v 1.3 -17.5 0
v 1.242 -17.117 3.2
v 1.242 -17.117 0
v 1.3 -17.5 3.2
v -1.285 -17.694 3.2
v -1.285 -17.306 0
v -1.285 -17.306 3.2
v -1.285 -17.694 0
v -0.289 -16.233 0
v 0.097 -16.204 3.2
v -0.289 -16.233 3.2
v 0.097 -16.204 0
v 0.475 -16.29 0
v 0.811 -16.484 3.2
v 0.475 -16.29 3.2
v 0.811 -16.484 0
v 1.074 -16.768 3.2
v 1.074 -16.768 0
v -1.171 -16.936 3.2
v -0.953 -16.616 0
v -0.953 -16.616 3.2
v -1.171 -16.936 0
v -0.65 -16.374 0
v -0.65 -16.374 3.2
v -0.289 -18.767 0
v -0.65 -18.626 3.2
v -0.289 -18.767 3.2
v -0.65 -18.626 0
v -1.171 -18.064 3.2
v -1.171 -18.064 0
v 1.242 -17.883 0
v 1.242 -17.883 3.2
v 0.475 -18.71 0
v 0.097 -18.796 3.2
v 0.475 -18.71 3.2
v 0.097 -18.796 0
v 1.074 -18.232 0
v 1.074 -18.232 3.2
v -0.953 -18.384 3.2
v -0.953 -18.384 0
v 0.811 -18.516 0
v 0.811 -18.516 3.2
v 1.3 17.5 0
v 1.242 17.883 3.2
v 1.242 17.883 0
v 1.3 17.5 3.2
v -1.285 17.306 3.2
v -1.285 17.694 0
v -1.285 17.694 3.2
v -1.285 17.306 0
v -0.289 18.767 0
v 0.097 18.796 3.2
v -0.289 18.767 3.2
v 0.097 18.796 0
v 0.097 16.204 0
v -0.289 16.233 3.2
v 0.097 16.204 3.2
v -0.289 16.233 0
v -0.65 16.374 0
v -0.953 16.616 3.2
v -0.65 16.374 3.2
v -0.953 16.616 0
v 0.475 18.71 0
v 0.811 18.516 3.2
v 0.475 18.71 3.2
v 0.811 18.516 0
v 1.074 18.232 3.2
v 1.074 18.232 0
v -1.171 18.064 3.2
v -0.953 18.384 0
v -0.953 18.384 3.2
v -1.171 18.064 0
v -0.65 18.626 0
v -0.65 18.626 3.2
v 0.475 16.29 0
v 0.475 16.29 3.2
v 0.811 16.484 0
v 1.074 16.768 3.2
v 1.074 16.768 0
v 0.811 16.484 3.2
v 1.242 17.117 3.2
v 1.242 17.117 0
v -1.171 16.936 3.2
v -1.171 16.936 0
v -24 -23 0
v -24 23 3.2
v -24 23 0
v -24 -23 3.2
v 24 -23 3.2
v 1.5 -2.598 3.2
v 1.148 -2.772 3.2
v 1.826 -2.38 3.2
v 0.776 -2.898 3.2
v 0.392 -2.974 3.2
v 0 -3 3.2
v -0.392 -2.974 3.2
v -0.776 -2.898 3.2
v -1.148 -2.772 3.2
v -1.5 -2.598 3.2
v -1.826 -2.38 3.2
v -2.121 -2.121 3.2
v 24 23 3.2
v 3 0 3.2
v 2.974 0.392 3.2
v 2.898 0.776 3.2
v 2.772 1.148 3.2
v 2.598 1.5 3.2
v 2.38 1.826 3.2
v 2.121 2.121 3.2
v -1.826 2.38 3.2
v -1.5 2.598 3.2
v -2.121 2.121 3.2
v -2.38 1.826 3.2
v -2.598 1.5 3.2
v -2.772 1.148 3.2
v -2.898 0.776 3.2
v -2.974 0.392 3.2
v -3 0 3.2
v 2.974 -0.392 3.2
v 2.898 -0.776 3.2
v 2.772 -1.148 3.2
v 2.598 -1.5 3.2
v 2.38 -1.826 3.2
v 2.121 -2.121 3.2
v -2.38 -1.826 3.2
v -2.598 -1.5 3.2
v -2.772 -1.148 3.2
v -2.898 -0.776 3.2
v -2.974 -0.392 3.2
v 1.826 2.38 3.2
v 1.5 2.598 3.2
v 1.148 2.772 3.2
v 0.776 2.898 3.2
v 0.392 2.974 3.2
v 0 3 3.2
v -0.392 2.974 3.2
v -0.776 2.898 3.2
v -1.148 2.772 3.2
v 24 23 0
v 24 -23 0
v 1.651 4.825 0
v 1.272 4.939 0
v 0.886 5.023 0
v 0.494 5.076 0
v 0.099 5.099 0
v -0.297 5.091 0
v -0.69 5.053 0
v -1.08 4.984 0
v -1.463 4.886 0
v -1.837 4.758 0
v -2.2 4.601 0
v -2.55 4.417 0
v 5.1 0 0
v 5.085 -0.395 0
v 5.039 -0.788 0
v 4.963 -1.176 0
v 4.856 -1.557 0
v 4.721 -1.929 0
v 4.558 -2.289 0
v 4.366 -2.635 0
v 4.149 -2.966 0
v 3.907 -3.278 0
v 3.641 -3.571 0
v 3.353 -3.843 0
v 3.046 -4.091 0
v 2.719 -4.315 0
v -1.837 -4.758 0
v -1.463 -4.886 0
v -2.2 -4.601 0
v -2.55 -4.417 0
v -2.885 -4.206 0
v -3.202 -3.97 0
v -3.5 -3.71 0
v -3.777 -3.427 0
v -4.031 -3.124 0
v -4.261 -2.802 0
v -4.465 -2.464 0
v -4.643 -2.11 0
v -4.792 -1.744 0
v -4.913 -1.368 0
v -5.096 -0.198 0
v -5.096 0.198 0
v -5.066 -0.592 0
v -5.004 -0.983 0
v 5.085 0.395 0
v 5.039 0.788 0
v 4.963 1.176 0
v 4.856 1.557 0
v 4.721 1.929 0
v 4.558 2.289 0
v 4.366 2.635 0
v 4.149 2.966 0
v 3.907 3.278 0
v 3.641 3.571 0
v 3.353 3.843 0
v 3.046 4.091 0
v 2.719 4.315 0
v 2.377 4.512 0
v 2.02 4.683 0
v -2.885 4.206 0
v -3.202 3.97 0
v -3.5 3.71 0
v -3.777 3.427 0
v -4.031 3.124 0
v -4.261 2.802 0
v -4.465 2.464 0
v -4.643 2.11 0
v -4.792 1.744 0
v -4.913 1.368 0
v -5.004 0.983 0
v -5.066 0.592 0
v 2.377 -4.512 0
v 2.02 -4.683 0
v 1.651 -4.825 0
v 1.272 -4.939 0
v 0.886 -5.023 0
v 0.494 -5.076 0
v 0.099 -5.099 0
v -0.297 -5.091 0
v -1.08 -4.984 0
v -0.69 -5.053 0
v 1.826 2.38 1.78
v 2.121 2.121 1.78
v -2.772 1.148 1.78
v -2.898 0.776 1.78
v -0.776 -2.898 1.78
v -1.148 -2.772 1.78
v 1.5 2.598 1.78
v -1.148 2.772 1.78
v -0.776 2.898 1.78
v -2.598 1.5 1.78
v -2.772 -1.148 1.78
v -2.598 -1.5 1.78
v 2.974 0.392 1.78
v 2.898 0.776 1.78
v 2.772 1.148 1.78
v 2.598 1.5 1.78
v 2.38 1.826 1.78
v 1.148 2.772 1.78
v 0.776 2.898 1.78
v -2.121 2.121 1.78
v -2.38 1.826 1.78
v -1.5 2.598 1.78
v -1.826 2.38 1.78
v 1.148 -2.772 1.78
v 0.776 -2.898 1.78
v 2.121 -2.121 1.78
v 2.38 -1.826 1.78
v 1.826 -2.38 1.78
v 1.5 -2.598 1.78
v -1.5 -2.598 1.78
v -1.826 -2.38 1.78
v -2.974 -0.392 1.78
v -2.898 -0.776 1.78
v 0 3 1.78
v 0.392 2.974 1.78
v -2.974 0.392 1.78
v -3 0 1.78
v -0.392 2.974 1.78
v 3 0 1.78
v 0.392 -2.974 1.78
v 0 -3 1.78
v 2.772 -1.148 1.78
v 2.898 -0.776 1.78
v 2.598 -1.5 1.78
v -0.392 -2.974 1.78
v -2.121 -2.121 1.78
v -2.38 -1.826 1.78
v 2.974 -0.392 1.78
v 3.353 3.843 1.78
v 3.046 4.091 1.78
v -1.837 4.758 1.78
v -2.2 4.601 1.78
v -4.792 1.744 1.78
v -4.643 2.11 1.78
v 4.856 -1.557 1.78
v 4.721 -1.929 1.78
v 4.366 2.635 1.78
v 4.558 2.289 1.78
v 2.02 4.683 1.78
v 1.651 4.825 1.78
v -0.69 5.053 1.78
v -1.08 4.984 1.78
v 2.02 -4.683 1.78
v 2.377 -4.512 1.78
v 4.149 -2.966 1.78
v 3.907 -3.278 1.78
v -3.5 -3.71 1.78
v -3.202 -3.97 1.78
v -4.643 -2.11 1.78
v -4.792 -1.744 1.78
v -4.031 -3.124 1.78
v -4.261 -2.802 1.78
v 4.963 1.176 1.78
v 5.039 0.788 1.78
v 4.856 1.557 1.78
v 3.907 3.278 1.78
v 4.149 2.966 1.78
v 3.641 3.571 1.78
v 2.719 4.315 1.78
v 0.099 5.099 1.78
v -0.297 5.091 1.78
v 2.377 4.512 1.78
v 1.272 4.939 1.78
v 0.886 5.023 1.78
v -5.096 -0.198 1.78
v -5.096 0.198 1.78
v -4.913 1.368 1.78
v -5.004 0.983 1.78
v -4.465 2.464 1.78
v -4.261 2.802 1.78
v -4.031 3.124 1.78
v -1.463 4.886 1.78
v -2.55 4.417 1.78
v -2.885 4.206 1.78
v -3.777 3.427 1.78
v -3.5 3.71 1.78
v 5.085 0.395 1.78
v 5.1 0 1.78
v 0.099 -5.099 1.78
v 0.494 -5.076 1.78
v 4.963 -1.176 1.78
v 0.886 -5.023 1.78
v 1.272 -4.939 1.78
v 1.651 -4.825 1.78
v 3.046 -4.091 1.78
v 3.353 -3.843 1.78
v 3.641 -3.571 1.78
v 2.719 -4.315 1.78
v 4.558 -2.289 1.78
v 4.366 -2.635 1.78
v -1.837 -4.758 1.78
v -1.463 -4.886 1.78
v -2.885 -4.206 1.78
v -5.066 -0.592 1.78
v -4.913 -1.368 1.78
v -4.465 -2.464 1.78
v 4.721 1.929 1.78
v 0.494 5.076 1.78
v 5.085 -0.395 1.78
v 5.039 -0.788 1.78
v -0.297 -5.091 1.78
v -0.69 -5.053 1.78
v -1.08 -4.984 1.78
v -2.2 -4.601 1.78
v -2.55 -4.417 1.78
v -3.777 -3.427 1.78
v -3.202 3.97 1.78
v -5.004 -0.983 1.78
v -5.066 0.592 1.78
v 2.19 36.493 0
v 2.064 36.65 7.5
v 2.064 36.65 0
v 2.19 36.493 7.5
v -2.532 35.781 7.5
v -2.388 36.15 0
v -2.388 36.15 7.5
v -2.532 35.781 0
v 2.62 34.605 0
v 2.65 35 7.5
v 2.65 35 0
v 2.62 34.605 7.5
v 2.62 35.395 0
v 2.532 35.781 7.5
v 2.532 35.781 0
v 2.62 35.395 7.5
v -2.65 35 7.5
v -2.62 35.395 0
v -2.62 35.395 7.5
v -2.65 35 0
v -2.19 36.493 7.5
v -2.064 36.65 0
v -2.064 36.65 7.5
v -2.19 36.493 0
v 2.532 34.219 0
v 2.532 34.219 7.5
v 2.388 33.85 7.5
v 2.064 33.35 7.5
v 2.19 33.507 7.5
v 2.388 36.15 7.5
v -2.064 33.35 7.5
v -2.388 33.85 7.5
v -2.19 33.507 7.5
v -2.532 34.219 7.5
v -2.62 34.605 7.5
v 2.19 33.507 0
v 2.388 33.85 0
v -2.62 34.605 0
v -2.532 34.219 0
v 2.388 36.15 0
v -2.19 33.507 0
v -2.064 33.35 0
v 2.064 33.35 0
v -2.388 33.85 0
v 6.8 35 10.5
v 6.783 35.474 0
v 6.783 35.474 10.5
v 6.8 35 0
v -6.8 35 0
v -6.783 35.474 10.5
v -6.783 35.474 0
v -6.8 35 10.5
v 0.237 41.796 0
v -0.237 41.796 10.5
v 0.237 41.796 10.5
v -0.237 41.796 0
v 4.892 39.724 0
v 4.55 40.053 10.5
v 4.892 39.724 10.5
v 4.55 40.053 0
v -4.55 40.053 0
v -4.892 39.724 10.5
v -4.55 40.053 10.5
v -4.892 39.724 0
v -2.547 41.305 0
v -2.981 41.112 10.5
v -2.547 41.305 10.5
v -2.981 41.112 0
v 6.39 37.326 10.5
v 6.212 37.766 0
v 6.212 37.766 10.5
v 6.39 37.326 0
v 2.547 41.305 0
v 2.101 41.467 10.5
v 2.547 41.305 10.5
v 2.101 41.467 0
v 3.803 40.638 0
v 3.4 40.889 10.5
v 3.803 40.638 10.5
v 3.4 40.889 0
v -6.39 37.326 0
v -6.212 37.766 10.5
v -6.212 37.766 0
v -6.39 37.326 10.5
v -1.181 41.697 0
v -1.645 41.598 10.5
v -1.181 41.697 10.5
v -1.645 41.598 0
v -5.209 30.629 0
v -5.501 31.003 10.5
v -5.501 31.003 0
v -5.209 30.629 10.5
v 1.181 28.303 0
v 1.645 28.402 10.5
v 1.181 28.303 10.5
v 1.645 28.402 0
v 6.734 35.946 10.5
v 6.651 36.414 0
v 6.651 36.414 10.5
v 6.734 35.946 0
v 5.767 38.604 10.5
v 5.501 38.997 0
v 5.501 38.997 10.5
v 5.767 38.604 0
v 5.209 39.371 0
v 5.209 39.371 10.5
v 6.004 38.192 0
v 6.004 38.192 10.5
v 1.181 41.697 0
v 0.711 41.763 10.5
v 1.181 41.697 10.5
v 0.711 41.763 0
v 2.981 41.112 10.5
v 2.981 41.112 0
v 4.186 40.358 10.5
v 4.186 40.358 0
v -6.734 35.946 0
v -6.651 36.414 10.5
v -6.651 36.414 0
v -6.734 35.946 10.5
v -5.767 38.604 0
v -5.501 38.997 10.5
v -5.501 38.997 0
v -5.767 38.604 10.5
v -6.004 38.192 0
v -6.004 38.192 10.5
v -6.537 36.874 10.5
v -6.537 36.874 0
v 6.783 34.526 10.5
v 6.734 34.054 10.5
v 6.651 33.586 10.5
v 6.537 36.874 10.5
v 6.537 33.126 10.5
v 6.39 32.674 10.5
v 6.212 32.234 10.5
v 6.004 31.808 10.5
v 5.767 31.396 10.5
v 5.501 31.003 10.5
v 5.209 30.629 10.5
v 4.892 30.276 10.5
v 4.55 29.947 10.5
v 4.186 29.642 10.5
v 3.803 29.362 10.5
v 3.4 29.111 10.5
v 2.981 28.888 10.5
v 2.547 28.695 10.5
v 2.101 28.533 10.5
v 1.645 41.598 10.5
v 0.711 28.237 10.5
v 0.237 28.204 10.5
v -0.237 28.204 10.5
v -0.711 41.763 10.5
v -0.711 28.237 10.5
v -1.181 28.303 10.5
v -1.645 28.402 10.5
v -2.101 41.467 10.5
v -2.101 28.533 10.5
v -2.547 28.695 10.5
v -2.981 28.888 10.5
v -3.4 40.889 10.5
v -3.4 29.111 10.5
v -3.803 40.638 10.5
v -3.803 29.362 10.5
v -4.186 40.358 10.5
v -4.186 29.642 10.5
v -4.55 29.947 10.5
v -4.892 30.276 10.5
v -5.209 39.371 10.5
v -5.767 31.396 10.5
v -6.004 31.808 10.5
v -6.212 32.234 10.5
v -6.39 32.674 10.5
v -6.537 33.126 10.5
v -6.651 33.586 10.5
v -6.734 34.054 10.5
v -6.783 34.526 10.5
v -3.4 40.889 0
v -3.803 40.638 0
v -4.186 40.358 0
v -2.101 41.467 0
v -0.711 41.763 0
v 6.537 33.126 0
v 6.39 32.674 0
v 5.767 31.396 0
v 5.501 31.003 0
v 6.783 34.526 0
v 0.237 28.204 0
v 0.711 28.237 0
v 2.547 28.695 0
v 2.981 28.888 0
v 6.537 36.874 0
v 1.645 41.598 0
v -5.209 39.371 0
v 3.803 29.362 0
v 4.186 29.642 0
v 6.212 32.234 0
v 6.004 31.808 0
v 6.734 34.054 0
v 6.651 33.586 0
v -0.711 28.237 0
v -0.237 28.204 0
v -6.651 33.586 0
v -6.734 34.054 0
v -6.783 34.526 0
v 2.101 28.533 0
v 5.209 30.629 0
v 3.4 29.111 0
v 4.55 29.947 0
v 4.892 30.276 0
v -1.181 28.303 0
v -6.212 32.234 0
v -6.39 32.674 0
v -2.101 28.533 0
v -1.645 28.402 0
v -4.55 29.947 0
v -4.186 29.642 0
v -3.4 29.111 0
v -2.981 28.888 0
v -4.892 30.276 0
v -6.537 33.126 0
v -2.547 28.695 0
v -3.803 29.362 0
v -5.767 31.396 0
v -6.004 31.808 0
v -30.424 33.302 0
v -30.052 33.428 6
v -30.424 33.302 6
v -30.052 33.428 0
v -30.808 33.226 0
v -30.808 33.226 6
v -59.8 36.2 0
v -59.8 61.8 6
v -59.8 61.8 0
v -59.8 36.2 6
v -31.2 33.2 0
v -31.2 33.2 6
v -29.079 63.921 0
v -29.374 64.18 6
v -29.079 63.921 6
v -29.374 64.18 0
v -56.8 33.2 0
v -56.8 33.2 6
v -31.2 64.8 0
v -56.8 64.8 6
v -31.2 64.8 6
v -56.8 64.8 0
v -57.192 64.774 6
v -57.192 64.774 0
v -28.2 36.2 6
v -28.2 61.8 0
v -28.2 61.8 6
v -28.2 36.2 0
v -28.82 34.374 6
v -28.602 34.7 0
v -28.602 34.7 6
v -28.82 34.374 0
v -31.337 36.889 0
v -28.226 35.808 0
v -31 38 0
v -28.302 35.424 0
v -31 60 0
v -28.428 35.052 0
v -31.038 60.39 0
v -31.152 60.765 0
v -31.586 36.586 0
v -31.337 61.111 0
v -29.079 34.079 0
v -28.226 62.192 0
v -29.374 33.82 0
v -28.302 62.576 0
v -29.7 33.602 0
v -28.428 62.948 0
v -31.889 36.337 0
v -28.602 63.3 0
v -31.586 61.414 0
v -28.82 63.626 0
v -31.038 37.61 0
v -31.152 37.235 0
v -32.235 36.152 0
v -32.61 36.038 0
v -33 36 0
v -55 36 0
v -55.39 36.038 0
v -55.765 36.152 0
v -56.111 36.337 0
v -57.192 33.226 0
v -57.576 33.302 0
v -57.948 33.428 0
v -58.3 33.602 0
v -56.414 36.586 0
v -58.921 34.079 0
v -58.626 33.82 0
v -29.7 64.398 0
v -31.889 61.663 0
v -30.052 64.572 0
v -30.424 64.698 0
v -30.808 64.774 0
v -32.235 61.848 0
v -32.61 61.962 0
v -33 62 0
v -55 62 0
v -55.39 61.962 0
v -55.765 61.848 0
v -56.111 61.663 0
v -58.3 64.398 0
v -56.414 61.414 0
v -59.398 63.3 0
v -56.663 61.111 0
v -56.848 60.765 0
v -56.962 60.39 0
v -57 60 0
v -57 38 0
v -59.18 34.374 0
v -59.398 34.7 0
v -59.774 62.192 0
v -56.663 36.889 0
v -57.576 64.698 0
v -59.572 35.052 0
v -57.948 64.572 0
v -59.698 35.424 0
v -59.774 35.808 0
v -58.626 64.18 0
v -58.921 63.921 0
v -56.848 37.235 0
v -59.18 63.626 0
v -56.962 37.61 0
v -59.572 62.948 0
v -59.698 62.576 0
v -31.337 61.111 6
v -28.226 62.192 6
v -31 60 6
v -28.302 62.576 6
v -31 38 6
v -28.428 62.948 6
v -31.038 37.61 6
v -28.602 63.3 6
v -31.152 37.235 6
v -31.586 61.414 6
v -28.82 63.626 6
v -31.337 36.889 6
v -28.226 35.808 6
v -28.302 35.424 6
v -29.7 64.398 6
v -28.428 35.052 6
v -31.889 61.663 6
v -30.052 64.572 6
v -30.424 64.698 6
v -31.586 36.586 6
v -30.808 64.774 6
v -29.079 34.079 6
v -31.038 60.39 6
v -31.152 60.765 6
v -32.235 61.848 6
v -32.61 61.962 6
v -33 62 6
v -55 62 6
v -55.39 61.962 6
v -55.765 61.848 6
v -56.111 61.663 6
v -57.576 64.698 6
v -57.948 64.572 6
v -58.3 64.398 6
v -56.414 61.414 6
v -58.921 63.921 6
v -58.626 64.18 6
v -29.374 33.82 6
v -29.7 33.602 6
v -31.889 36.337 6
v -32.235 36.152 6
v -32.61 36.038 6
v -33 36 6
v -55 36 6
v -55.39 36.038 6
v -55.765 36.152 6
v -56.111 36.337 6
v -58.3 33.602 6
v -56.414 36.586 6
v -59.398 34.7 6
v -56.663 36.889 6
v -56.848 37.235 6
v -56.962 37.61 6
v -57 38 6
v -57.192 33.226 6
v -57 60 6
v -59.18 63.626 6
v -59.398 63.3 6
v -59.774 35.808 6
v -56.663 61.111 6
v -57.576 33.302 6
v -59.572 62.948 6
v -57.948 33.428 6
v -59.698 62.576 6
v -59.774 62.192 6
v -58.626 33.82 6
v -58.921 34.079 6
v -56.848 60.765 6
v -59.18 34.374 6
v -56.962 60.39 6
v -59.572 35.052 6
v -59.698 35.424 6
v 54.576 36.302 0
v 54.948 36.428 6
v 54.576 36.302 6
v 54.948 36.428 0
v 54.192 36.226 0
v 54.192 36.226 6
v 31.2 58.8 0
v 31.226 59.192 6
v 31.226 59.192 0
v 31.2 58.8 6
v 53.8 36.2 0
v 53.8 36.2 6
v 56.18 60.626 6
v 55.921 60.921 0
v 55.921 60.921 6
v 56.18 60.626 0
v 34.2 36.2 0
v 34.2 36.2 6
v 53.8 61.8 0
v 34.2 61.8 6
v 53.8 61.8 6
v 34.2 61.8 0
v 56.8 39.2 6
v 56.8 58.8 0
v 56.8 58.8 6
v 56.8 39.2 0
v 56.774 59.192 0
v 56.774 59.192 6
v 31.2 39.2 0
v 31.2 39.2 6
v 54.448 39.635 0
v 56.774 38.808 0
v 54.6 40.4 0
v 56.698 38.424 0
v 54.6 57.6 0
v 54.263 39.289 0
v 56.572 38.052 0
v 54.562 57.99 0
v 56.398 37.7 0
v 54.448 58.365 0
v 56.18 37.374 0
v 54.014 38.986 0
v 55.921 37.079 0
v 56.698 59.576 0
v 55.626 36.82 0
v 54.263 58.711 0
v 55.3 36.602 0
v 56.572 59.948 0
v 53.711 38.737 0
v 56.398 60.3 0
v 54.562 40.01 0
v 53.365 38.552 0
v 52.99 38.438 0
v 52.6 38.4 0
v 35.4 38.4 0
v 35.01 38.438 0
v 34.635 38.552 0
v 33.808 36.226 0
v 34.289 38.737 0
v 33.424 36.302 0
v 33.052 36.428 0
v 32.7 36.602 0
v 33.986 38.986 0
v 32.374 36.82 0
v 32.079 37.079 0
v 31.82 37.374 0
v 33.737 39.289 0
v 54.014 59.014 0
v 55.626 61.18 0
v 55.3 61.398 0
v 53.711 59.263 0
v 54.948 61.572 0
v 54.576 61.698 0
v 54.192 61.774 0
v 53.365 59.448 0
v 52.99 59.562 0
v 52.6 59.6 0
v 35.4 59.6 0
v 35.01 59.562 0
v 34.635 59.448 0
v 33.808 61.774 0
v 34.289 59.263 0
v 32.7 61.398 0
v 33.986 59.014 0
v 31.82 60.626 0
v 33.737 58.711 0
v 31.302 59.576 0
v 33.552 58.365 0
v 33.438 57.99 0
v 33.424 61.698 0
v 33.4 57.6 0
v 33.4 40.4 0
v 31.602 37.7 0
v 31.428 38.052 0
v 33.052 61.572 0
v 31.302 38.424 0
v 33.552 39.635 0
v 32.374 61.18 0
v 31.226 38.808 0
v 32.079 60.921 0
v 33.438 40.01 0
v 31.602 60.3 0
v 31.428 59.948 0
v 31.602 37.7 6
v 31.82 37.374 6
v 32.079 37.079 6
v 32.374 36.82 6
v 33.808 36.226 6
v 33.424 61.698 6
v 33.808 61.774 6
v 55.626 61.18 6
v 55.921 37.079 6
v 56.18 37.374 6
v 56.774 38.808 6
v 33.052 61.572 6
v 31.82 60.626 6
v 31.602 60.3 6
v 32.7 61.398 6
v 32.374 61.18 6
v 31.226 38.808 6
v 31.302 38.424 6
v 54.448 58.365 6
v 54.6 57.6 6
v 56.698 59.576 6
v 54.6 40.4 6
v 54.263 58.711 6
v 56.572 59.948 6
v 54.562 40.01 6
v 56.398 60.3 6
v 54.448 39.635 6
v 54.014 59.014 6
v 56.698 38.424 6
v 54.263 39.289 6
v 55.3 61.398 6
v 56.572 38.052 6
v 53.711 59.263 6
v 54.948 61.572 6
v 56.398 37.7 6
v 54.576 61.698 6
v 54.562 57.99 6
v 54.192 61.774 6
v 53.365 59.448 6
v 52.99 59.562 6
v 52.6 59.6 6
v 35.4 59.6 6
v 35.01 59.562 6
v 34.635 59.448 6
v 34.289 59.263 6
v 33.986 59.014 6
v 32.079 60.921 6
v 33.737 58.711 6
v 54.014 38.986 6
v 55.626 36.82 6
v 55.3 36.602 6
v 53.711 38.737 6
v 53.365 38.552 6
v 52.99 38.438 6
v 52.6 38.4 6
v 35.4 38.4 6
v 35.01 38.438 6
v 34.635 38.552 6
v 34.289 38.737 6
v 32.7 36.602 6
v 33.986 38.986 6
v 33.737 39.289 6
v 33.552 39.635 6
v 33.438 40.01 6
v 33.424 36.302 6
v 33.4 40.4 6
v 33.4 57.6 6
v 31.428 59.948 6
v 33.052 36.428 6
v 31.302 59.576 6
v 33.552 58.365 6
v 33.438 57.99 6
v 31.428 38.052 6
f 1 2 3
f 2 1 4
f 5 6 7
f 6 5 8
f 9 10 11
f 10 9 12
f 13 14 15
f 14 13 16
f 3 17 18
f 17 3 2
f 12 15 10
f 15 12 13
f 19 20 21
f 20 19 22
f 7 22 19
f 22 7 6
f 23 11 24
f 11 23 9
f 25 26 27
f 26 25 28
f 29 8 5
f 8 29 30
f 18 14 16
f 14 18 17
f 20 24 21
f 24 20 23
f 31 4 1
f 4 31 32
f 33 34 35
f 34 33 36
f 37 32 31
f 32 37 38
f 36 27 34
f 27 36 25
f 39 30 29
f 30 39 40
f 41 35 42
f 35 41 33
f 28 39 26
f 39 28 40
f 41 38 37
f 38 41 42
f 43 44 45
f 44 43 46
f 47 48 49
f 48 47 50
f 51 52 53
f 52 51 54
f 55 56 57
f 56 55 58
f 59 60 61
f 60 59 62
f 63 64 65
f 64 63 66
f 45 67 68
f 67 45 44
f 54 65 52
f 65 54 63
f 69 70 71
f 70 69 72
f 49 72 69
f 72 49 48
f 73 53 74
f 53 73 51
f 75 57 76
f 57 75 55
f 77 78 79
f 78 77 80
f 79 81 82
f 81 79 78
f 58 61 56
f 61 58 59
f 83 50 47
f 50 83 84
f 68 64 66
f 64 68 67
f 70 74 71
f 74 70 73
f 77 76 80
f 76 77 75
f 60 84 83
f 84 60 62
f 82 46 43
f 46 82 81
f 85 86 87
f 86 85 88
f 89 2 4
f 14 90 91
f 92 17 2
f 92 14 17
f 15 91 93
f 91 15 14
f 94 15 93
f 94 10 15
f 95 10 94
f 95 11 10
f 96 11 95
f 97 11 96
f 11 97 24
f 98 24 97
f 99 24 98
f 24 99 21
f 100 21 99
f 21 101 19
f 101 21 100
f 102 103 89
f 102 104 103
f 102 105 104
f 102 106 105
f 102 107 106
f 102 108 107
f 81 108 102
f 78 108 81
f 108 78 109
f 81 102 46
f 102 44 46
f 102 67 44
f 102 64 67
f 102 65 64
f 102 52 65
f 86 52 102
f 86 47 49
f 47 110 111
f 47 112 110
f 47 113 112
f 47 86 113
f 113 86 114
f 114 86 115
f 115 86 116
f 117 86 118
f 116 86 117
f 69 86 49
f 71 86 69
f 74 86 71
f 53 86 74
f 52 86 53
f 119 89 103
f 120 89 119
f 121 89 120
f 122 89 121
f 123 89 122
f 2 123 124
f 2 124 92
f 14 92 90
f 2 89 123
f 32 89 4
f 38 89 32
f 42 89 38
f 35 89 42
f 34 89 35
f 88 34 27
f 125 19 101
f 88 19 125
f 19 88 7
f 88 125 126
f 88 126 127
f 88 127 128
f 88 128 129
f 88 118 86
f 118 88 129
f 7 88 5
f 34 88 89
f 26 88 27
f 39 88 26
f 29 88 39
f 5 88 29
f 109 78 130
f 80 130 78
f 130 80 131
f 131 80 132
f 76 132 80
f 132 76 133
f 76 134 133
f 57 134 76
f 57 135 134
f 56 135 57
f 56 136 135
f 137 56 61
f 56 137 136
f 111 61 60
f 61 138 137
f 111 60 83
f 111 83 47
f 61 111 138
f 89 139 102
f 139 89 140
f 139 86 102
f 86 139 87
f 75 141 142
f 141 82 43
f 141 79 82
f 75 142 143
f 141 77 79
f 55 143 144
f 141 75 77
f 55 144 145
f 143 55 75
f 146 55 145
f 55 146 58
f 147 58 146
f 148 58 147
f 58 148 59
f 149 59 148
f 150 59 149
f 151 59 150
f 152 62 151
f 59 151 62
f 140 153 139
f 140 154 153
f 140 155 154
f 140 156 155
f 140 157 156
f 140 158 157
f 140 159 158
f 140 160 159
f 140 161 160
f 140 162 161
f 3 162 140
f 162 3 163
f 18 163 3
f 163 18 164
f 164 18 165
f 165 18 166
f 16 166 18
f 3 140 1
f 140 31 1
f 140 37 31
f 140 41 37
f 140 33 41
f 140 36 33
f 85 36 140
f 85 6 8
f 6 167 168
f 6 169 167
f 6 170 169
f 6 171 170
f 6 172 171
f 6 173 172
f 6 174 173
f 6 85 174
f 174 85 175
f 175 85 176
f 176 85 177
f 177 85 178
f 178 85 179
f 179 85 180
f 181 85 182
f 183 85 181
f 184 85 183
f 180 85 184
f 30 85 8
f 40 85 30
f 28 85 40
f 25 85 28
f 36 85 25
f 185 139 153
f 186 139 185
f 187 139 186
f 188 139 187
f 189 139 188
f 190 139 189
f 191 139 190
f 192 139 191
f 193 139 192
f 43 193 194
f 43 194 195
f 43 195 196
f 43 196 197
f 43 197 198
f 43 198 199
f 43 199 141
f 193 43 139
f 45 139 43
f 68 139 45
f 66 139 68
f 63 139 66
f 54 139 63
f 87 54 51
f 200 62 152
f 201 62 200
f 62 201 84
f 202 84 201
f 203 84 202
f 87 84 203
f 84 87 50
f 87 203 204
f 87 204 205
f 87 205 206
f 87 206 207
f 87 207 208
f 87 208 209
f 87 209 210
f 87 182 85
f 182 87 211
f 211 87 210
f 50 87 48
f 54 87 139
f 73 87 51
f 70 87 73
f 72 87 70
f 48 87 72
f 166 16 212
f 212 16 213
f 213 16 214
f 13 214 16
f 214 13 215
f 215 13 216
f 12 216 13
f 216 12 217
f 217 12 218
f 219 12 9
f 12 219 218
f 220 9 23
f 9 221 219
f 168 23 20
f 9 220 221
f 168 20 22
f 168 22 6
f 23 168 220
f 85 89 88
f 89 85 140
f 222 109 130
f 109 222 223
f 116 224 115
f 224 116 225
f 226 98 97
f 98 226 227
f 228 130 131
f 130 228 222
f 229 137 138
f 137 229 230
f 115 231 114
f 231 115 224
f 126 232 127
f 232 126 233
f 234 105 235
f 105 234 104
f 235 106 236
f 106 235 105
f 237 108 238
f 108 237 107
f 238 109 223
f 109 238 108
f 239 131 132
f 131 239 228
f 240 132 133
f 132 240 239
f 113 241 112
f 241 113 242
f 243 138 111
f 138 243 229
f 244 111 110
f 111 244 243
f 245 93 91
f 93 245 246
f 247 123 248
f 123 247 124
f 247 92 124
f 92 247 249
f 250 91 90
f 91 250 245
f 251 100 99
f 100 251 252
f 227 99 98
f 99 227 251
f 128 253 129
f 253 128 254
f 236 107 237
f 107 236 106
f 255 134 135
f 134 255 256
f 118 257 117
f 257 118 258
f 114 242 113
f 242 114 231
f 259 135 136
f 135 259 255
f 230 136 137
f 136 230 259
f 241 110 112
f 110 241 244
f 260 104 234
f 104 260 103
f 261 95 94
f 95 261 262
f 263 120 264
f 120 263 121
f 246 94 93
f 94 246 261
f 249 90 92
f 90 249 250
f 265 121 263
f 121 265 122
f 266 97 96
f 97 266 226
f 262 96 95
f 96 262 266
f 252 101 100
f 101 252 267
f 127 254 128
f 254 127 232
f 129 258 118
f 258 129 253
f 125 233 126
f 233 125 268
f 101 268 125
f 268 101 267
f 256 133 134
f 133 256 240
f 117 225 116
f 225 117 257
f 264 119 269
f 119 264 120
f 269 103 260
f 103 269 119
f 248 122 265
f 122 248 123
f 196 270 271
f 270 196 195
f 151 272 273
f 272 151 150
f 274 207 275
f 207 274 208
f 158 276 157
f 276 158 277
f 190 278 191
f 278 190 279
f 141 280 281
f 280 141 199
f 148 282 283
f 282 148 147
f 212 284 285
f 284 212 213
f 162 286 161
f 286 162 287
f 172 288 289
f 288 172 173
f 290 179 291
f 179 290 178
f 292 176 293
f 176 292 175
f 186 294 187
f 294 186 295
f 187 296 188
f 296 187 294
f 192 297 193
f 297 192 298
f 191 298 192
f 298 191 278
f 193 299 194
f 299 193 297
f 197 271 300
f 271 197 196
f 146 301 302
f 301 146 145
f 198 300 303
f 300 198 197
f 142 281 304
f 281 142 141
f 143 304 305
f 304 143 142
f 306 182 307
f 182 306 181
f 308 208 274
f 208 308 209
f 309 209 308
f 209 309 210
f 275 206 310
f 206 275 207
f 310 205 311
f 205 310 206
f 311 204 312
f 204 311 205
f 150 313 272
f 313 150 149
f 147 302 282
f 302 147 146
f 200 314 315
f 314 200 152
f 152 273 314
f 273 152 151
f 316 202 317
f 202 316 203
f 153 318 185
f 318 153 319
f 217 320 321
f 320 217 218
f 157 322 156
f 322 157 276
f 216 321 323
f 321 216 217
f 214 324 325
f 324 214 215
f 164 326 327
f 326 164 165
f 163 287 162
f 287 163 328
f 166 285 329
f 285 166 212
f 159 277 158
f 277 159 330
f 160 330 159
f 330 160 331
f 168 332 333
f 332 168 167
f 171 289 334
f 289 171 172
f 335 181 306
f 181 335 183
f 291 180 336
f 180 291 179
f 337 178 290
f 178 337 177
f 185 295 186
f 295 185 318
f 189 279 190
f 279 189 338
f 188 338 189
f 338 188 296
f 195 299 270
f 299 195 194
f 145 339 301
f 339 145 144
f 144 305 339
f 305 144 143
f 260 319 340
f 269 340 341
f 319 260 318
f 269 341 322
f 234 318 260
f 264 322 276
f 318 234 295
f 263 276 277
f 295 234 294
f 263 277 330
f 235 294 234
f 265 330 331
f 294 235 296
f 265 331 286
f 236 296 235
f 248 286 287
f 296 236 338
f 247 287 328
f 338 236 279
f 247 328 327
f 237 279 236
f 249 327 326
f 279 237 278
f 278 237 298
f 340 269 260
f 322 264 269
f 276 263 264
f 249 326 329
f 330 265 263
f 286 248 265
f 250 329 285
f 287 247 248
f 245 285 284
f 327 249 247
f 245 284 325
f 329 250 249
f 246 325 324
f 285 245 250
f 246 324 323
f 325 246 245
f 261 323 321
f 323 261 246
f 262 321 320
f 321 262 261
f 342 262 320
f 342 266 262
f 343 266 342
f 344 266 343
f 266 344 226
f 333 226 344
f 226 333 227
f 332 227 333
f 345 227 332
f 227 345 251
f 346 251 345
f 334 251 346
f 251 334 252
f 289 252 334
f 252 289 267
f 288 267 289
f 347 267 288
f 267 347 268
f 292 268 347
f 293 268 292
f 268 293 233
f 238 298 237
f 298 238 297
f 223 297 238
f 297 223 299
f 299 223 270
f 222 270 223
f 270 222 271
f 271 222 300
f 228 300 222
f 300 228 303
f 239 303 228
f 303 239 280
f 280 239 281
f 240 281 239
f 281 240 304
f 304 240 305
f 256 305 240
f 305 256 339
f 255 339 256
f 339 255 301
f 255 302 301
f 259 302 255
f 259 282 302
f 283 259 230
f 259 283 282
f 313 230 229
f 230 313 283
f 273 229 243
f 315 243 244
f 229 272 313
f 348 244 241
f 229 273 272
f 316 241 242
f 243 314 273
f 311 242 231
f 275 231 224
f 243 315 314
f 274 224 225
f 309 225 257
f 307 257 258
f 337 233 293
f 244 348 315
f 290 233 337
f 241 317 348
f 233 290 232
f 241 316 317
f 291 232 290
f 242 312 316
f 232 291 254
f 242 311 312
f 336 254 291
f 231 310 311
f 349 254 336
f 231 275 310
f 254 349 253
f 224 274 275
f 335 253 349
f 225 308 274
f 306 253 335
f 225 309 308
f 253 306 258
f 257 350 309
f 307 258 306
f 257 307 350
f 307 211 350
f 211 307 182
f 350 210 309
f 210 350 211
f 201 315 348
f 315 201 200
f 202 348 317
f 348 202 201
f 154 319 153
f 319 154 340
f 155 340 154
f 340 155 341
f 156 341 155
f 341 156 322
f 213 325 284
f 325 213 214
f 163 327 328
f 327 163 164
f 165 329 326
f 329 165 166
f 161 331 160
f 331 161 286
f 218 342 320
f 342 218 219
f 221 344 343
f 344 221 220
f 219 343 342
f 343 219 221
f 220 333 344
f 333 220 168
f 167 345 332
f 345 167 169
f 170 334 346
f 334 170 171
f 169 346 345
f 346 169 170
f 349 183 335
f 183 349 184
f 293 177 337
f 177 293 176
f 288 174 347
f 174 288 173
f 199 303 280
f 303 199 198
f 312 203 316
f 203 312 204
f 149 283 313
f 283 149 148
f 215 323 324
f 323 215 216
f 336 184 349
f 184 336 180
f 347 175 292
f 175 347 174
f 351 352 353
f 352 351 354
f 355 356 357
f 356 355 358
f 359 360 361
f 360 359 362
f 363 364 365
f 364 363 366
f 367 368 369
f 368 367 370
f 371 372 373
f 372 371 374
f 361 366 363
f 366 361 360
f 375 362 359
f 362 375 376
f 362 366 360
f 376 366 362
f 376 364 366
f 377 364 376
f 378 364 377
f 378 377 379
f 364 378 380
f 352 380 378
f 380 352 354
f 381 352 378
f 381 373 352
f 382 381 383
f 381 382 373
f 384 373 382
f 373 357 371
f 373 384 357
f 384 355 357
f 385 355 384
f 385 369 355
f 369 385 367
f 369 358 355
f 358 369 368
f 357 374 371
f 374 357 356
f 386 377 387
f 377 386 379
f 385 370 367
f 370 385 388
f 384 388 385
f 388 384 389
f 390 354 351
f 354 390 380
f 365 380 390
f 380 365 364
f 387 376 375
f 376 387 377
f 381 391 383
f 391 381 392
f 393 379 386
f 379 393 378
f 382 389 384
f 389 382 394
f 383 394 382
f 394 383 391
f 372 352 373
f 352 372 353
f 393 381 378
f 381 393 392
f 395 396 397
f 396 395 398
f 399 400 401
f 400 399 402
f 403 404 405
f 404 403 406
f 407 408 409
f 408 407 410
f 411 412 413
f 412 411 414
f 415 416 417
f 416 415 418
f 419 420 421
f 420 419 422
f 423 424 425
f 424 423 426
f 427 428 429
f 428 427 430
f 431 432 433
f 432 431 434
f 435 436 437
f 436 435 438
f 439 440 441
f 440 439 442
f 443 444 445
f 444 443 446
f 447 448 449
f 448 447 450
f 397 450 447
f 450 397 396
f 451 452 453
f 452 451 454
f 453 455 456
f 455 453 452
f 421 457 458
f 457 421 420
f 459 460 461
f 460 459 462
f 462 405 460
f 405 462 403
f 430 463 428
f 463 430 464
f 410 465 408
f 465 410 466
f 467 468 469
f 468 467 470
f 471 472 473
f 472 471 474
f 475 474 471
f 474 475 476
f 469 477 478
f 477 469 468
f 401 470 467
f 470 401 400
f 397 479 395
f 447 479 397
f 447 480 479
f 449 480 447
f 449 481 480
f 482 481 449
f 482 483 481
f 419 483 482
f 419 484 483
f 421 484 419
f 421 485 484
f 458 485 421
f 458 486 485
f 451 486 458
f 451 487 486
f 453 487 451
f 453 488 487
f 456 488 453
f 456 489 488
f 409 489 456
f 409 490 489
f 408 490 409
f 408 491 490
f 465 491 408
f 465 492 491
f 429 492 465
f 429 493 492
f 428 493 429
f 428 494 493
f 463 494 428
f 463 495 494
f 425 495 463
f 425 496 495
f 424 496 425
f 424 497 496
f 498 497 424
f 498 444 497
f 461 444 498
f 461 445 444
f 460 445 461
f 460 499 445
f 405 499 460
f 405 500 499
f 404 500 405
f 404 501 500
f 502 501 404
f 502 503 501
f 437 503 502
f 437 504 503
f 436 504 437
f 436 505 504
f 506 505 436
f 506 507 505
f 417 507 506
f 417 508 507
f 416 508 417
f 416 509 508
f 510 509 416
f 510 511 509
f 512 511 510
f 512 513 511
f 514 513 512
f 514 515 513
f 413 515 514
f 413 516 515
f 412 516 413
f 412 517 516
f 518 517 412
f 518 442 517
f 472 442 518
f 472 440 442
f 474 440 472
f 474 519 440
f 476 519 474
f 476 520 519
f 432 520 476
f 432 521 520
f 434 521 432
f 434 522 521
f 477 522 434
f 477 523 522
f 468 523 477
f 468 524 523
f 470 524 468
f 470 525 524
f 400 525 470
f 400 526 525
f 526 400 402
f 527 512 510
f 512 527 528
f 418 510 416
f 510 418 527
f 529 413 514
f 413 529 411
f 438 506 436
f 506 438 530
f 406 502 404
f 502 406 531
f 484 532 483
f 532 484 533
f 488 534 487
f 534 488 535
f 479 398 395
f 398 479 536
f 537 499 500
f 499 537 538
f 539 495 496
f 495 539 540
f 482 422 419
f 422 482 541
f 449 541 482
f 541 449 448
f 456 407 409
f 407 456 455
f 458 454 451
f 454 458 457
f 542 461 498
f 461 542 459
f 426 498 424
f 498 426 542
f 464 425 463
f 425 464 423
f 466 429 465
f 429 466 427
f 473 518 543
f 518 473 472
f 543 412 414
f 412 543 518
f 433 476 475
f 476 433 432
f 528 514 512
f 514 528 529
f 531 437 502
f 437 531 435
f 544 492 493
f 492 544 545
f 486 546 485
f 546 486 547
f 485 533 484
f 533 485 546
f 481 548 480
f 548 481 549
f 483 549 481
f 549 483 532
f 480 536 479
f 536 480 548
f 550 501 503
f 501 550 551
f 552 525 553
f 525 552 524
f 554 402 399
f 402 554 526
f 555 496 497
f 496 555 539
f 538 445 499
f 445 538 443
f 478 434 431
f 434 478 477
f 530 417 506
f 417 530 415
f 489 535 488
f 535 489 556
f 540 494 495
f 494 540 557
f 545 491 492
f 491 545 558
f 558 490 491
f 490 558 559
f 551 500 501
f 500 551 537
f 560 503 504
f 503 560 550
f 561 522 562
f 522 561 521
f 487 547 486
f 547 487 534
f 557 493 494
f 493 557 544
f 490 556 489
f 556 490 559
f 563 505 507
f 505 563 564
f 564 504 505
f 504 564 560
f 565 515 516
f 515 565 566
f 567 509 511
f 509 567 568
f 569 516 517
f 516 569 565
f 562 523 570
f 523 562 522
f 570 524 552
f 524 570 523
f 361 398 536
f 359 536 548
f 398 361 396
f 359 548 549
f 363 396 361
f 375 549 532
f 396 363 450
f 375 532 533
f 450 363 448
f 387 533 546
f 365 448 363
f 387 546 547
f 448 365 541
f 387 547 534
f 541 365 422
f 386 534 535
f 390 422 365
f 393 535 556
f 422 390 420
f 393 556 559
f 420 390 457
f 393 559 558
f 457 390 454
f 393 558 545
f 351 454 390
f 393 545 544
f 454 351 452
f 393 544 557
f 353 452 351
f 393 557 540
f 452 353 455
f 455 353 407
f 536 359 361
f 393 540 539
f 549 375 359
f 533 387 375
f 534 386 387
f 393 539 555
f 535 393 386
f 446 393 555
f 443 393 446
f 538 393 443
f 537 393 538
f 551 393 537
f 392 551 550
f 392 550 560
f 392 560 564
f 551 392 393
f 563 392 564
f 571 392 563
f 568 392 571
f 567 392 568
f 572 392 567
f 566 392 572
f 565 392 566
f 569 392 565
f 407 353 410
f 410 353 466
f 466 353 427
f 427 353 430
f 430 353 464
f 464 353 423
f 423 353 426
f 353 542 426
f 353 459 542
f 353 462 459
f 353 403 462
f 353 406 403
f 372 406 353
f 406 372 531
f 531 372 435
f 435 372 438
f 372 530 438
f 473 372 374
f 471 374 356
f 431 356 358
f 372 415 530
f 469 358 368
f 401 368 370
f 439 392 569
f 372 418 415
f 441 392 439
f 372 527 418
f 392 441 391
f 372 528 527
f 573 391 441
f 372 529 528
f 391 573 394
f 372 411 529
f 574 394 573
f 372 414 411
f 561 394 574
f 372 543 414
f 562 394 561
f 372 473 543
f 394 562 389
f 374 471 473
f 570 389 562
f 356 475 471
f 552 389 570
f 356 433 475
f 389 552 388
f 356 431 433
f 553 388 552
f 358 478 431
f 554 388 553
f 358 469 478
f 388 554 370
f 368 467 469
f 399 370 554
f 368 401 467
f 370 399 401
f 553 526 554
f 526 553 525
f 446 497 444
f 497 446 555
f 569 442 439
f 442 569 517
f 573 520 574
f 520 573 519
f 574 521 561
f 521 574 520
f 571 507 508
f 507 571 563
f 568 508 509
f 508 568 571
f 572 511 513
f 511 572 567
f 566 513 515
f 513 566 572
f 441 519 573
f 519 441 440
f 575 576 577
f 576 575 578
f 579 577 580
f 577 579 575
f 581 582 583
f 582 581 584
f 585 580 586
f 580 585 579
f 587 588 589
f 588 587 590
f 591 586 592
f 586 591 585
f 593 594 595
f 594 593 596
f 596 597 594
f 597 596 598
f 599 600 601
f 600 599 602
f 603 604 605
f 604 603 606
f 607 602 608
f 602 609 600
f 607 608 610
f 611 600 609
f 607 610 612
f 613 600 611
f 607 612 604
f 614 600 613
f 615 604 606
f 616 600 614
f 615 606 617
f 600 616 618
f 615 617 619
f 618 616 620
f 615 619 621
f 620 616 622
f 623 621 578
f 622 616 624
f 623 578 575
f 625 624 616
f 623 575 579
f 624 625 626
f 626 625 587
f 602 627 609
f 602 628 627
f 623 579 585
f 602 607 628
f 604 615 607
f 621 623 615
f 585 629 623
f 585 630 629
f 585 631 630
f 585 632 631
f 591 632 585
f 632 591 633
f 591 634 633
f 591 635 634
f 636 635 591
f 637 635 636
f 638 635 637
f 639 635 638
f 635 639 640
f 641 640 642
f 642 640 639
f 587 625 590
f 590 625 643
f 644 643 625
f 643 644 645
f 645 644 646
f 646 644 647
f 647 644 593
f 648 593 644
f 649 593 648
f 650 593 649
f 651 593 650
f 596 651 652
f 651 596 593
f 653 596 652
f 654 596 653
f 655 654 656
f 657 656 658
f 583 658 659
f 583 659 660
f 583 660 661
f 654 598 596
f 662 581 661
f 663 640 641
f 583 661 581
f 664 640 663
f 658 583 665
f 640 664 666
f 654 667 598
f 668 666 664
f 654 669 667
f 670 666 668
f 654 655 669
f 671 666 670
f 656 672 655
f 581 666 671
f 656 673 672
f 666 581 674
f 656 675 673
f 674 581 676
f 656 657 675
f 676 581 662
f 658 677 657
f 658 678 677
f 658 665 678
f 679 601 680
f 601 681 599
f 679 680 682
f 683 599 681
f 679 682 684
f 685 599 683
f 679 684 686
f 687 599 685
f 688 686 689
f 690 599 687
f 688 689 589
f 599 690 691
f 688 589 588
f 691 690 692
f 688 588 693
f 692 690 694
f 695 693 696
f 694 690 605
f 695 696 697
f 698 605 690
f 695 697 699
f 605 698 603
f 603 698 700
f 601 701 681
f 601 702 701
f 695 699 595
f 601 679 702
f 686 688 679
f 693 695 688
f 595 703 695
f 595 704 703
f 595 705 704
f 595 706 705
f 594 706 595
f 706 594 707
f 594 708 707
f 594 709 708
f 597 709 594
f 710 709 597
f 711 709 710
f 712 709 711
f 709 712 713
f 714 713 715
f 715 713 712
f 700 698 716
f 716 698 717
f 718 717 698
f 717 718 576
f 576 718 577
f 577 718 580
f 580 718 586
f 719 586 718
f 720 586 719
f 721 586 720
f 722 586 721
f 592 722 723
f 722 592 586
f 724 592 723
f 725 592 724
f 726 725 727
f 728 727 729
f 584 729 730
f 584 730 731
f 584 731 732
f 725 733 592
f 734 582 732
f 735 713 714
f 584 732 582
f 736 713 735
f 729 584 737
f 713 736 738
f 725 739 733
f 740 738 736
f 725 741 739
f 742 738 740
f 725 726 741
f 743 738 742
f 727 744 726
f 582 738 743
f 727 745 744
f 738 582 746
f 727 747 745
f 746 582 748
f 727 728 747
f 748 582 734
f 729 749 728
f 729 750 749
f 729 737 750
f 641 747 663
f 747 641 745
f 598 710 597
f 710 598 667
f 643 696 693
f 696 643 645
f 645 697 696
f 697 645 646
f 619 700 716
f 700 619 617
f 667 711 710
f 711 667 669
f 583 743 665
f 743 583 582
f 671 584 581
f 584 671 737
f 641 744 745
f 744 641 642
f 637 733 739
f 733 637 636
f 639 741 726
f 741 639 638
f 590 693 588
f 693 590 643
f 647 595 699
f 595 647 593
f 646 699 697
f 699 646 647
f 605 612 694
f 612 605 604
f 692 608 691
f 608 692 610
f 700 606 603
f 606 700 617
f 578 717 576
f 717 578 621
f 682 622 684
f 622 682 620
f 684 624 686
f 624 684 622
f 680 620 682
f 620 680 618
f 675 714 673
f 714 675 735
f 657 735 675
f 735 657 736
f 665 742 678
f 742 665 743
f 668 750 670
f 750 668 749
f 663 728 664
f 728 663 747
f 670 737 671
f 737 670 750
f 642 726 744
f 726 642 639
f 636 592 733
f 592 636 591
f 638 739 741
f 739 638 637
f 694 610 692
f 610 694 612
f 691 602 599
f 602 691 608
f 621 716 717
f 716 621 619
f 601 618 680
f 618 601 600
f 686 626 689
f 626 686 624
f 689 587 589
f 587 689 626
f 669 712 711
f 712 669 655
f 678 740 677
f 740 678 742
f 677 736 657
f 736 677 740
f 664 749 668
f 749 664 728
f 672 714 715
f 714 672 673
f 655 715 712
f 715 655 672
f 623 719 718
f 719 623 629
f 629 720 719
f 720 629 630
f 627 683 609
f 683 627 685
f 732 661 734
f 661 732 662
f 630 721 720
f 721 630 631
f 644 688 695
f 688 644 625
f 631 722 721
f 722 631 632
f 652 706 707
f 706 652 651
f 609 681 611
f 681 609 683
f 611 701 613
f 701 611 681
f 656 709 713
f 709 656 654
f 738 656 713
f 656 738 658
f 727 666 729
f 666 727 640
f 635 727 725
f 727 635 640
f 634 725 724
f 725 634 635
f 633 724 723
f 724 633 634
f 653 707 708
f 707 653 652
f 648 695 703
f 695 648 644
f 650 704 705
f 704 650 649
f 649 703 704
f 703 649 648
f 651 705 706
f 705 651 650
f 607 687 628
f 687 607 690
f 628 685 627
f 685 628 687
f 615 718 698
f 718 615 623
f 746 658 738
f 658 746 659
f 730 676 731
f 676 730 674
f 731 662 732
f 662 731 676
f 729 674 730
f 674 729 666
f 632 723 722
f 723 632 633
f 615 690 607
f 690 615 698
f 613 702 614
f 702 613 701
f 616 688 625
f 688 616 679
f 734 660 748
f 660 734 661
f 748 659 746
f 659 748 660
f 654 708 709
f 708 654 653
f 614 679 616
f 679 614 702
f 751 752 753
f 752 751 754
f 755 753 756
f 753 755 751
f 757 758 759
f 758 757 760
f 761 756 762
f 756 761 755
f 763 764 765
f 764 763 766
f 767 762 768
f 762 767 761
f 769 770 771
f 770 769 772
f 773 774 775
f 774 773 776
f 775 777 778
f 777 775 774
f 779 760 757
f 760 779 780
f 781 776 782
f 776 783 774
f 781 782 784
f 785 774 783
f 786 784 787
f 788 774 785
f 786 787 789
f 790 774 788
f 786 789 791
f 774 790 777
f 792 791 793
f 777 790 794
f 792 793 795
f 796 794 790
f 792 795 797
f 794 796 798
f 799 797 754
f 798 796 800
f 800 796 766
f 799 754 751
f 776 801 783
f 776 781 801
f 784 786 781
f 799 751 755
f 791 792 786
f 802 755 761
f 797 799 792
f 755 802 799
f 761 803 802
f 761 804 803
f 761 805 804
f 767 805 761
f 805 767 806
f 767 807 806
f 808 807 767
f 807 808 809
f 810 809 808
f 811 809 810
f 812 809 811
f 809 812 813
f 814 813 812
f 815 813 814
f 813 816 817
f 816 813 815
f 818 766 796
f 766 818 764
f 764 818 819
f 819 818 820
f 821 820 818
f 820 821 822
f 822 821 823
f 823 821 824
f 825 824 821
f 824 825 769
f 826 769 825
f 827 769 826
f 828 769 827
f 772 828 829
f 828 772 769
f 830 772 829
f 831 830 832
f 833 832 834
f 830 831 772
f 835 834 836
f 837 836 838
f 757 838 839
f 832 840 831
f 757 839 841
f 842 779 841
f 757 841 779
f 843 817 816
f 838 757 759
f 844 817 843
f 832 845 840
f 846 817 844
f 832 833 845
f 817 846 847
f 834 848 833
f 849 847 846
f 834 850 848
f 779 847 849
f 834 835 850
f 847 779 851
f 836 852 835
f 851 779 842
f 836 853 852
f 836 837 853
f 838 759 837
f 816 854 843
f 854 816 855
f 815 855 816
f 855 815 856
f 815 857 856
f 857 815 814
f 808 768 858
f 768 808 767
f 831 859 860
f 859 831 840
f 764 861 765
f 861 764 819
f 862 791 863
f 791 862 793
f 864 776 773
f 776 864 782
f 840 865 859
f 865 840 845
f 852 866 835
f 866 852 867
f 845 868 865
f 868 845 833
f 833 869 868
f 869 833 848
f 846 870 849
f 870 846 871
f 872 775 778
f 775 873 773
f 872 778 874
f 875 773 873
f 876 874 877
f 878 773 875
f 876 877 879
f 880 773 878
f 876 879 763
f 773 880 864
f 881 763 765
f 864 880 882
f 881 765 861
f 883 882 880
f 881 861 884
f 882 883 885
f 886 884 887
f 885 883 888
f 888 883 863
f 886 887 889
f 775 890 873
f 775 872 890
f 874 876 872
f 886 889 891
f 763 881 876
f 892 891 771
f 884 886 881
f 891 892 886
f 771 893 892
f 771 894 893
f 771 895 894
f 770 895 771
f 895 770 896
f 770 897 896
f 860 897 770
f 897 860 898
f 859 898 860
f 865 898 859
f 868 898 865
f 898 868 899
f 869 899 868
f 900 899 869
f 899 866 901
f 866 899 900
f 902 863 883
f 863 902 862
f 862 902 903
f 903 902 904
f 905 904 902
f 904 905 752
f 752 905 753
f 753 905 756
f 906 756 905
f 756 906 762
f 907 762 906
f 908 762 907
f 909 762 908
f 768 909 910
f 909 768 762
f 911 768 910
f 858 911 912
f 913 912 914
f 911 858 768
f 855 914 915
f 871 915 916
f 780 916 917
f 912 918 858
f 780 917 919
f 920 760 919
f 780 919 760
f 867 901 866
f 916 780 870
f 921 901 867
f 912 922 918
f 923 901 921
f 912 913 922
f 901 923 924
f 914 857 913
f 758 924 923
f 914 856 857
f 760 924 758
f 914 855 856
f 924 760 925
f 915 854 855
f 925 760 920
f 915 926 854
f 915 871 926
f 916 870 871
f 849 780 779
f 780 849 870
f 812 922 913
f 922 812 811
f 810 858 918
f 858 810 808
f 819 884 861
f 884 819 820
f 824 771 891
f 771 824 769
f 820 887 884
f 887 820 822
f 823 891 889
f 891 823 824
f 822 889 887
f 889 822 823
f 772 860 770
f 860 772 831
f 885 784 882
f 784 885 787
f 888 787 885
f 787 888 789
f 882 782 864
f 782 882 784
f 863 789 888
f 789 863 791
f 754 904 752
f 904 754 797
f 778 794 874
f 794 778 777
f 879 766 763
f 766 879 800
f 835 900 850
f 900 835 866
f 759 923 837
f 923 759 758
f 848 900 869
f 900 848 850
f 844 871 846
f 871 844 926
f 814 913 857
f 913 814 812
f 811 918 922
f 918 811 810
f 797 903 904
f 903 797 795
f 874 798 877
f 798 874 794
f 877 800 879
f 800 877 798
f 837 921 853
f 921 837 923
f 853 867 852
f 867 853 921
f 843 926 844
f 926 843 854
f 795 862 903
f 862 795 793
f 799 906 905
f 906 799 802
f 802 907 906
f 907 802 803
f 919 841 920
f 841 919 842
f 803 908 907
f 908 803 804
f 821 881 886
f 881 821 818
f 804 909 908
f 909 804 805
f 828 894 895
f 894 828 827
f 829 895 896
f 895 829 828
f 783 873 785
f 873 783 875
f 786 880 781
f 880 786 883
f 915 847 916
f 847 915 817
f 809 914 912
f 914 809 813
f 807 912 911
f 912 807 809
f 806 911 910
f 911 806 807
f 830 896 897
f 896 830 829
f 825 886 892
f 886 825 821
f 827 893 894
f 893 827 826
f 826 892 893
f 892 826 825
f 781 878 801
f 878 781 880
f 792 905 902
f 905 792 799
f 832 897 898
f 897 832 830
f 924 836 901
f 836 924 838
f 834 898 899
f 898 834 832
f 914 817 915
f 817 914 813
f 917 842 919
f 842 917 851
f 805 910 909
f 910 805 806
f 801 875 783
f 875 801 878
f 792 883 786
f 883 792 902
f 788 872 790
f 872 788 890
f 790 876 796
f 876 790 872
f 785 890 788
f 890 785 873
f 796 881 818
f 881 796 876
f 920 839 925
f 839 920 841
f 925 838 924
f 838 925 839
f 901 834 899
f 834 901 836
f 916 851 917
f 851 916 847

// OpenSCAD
// =====================================================================
//  AquaFeeder -- PECA DE TESTE (imprima ESTA PRIMEIRO -- 10 min, ~6 g)
//
//  Valida os 3 encaixes que fazem o projeto funcionar ou nao:
//    1) furos e ressalto do motor 28BYJ-48  (parafuse o motor de verdade)
//    2) encaixe do eixo achatado na rosca   (encaixe o eixo do motor)
//    3) socket do funil                     (so confere a folga do quadrado)
//
//  Se o motor nao entrar: aumente fit em common.scad (0.1 / 0.15) e refaca.
//  Se ficar folgado: use fit negativo (-0.1).
// =====================================================================
include <common.scad>

// --- 1) gabarito do motor -------------------------------------------
module motor_gauge() {
    if (motor_type == "NEMA17") {
        difference() {
            translate([-n17_plate/2, -n17_plate/2, 0])
                cube([n17_plate, n17_plate, n17_plate_t]);
            translate([0, 0, -1]) cylinder(d = n17_shaft_d + 1.2, h = n17_plate_t + 2);
            translate([0, 0, n17_plate_t - n17_boss_h])
                cylinder(d = n17_boss_d + fit, h = n17_boss_h + 1);
            for (sx = [-1, 1], sy = [-1, 1])
                translate([sx * n17_hole_p/2, sy * n17_hole_p/2, -1])
                    cylinder(d = n17_hole_d + fit, h = n17_plate_t + 2);
        }
    } else {
        difference() {
            translate([-24, -plate_w/2, 0]) cube([48, plate_w, plate_t]);
            translate([0, 0, -1]) cylinder(d = m_shaft_d + 1.0, h = plate_t + 2);
            translate([0, 0, -eps]) cylinder(d = m_boss_d + 0.6, h = m_boss_h);
            for (s = [-1, 1])
                translate([0, s * m_hole_pitch/2, -1])
                    cylinder(d = m_hole_d + fit, h = plate_t + 2);
        }
    }
}

// --- 2) encaixe do eixo ---------------------------------------------
module shaft_gauge() {
    if (motor_type == "NEMA17") {
        difference() {
            cylinder(d = hub_d, h = 16);
            translate([0, 0, -eps]) cylinder(d = n17_shaft_d + 0.15 + fit, h = 14);
            translate([0, 0, 7]) rotate([0, 90, 0]) cylinder(d = m3_tap, h = hub_d);
        }
    } else {
        difference() {
            cylinder(d = hub_d, h = socket_depth + 3);
            translate([0, 0, -eps]) dshaft(socket_depth + eps, 0.15 + fit/2);
        }
    }
}

// --- 3) socket do funil (so um pedaco da parede) --------------------
module socket_gauge() {
    difference() {
        rbox(socket_sq + 2*collar_wall, socket_sq + 2*collar_wall, 6, 3);
        translate([0, 0, -eps]) rbox(socket_sq + fit, socket_sq + fit, 7, 2);
    }
}

// --- 4) amostra do spigot do funil (encaixa no item 3) -------------
module spigot_gauge() {
    difference() {
        rbox(hop_bot, hop_bot, 6, 3);
        translate([0, 0, -eps]) rbox(hop_bot - 2*hop_wall, hop_bot - 2*hop_wall, 7, 2);
    }
}

gy = (motor_type == "NEMA17") ? n17_plate/2 : plate_w/2;
motor_gauge();
translate([0, gy + 12, 0]) shaft_gauge();
translate([-44, gy + 26, 0]) socket_gauge();
translate([44, gy + 26, 0]) spigot_gauge();
